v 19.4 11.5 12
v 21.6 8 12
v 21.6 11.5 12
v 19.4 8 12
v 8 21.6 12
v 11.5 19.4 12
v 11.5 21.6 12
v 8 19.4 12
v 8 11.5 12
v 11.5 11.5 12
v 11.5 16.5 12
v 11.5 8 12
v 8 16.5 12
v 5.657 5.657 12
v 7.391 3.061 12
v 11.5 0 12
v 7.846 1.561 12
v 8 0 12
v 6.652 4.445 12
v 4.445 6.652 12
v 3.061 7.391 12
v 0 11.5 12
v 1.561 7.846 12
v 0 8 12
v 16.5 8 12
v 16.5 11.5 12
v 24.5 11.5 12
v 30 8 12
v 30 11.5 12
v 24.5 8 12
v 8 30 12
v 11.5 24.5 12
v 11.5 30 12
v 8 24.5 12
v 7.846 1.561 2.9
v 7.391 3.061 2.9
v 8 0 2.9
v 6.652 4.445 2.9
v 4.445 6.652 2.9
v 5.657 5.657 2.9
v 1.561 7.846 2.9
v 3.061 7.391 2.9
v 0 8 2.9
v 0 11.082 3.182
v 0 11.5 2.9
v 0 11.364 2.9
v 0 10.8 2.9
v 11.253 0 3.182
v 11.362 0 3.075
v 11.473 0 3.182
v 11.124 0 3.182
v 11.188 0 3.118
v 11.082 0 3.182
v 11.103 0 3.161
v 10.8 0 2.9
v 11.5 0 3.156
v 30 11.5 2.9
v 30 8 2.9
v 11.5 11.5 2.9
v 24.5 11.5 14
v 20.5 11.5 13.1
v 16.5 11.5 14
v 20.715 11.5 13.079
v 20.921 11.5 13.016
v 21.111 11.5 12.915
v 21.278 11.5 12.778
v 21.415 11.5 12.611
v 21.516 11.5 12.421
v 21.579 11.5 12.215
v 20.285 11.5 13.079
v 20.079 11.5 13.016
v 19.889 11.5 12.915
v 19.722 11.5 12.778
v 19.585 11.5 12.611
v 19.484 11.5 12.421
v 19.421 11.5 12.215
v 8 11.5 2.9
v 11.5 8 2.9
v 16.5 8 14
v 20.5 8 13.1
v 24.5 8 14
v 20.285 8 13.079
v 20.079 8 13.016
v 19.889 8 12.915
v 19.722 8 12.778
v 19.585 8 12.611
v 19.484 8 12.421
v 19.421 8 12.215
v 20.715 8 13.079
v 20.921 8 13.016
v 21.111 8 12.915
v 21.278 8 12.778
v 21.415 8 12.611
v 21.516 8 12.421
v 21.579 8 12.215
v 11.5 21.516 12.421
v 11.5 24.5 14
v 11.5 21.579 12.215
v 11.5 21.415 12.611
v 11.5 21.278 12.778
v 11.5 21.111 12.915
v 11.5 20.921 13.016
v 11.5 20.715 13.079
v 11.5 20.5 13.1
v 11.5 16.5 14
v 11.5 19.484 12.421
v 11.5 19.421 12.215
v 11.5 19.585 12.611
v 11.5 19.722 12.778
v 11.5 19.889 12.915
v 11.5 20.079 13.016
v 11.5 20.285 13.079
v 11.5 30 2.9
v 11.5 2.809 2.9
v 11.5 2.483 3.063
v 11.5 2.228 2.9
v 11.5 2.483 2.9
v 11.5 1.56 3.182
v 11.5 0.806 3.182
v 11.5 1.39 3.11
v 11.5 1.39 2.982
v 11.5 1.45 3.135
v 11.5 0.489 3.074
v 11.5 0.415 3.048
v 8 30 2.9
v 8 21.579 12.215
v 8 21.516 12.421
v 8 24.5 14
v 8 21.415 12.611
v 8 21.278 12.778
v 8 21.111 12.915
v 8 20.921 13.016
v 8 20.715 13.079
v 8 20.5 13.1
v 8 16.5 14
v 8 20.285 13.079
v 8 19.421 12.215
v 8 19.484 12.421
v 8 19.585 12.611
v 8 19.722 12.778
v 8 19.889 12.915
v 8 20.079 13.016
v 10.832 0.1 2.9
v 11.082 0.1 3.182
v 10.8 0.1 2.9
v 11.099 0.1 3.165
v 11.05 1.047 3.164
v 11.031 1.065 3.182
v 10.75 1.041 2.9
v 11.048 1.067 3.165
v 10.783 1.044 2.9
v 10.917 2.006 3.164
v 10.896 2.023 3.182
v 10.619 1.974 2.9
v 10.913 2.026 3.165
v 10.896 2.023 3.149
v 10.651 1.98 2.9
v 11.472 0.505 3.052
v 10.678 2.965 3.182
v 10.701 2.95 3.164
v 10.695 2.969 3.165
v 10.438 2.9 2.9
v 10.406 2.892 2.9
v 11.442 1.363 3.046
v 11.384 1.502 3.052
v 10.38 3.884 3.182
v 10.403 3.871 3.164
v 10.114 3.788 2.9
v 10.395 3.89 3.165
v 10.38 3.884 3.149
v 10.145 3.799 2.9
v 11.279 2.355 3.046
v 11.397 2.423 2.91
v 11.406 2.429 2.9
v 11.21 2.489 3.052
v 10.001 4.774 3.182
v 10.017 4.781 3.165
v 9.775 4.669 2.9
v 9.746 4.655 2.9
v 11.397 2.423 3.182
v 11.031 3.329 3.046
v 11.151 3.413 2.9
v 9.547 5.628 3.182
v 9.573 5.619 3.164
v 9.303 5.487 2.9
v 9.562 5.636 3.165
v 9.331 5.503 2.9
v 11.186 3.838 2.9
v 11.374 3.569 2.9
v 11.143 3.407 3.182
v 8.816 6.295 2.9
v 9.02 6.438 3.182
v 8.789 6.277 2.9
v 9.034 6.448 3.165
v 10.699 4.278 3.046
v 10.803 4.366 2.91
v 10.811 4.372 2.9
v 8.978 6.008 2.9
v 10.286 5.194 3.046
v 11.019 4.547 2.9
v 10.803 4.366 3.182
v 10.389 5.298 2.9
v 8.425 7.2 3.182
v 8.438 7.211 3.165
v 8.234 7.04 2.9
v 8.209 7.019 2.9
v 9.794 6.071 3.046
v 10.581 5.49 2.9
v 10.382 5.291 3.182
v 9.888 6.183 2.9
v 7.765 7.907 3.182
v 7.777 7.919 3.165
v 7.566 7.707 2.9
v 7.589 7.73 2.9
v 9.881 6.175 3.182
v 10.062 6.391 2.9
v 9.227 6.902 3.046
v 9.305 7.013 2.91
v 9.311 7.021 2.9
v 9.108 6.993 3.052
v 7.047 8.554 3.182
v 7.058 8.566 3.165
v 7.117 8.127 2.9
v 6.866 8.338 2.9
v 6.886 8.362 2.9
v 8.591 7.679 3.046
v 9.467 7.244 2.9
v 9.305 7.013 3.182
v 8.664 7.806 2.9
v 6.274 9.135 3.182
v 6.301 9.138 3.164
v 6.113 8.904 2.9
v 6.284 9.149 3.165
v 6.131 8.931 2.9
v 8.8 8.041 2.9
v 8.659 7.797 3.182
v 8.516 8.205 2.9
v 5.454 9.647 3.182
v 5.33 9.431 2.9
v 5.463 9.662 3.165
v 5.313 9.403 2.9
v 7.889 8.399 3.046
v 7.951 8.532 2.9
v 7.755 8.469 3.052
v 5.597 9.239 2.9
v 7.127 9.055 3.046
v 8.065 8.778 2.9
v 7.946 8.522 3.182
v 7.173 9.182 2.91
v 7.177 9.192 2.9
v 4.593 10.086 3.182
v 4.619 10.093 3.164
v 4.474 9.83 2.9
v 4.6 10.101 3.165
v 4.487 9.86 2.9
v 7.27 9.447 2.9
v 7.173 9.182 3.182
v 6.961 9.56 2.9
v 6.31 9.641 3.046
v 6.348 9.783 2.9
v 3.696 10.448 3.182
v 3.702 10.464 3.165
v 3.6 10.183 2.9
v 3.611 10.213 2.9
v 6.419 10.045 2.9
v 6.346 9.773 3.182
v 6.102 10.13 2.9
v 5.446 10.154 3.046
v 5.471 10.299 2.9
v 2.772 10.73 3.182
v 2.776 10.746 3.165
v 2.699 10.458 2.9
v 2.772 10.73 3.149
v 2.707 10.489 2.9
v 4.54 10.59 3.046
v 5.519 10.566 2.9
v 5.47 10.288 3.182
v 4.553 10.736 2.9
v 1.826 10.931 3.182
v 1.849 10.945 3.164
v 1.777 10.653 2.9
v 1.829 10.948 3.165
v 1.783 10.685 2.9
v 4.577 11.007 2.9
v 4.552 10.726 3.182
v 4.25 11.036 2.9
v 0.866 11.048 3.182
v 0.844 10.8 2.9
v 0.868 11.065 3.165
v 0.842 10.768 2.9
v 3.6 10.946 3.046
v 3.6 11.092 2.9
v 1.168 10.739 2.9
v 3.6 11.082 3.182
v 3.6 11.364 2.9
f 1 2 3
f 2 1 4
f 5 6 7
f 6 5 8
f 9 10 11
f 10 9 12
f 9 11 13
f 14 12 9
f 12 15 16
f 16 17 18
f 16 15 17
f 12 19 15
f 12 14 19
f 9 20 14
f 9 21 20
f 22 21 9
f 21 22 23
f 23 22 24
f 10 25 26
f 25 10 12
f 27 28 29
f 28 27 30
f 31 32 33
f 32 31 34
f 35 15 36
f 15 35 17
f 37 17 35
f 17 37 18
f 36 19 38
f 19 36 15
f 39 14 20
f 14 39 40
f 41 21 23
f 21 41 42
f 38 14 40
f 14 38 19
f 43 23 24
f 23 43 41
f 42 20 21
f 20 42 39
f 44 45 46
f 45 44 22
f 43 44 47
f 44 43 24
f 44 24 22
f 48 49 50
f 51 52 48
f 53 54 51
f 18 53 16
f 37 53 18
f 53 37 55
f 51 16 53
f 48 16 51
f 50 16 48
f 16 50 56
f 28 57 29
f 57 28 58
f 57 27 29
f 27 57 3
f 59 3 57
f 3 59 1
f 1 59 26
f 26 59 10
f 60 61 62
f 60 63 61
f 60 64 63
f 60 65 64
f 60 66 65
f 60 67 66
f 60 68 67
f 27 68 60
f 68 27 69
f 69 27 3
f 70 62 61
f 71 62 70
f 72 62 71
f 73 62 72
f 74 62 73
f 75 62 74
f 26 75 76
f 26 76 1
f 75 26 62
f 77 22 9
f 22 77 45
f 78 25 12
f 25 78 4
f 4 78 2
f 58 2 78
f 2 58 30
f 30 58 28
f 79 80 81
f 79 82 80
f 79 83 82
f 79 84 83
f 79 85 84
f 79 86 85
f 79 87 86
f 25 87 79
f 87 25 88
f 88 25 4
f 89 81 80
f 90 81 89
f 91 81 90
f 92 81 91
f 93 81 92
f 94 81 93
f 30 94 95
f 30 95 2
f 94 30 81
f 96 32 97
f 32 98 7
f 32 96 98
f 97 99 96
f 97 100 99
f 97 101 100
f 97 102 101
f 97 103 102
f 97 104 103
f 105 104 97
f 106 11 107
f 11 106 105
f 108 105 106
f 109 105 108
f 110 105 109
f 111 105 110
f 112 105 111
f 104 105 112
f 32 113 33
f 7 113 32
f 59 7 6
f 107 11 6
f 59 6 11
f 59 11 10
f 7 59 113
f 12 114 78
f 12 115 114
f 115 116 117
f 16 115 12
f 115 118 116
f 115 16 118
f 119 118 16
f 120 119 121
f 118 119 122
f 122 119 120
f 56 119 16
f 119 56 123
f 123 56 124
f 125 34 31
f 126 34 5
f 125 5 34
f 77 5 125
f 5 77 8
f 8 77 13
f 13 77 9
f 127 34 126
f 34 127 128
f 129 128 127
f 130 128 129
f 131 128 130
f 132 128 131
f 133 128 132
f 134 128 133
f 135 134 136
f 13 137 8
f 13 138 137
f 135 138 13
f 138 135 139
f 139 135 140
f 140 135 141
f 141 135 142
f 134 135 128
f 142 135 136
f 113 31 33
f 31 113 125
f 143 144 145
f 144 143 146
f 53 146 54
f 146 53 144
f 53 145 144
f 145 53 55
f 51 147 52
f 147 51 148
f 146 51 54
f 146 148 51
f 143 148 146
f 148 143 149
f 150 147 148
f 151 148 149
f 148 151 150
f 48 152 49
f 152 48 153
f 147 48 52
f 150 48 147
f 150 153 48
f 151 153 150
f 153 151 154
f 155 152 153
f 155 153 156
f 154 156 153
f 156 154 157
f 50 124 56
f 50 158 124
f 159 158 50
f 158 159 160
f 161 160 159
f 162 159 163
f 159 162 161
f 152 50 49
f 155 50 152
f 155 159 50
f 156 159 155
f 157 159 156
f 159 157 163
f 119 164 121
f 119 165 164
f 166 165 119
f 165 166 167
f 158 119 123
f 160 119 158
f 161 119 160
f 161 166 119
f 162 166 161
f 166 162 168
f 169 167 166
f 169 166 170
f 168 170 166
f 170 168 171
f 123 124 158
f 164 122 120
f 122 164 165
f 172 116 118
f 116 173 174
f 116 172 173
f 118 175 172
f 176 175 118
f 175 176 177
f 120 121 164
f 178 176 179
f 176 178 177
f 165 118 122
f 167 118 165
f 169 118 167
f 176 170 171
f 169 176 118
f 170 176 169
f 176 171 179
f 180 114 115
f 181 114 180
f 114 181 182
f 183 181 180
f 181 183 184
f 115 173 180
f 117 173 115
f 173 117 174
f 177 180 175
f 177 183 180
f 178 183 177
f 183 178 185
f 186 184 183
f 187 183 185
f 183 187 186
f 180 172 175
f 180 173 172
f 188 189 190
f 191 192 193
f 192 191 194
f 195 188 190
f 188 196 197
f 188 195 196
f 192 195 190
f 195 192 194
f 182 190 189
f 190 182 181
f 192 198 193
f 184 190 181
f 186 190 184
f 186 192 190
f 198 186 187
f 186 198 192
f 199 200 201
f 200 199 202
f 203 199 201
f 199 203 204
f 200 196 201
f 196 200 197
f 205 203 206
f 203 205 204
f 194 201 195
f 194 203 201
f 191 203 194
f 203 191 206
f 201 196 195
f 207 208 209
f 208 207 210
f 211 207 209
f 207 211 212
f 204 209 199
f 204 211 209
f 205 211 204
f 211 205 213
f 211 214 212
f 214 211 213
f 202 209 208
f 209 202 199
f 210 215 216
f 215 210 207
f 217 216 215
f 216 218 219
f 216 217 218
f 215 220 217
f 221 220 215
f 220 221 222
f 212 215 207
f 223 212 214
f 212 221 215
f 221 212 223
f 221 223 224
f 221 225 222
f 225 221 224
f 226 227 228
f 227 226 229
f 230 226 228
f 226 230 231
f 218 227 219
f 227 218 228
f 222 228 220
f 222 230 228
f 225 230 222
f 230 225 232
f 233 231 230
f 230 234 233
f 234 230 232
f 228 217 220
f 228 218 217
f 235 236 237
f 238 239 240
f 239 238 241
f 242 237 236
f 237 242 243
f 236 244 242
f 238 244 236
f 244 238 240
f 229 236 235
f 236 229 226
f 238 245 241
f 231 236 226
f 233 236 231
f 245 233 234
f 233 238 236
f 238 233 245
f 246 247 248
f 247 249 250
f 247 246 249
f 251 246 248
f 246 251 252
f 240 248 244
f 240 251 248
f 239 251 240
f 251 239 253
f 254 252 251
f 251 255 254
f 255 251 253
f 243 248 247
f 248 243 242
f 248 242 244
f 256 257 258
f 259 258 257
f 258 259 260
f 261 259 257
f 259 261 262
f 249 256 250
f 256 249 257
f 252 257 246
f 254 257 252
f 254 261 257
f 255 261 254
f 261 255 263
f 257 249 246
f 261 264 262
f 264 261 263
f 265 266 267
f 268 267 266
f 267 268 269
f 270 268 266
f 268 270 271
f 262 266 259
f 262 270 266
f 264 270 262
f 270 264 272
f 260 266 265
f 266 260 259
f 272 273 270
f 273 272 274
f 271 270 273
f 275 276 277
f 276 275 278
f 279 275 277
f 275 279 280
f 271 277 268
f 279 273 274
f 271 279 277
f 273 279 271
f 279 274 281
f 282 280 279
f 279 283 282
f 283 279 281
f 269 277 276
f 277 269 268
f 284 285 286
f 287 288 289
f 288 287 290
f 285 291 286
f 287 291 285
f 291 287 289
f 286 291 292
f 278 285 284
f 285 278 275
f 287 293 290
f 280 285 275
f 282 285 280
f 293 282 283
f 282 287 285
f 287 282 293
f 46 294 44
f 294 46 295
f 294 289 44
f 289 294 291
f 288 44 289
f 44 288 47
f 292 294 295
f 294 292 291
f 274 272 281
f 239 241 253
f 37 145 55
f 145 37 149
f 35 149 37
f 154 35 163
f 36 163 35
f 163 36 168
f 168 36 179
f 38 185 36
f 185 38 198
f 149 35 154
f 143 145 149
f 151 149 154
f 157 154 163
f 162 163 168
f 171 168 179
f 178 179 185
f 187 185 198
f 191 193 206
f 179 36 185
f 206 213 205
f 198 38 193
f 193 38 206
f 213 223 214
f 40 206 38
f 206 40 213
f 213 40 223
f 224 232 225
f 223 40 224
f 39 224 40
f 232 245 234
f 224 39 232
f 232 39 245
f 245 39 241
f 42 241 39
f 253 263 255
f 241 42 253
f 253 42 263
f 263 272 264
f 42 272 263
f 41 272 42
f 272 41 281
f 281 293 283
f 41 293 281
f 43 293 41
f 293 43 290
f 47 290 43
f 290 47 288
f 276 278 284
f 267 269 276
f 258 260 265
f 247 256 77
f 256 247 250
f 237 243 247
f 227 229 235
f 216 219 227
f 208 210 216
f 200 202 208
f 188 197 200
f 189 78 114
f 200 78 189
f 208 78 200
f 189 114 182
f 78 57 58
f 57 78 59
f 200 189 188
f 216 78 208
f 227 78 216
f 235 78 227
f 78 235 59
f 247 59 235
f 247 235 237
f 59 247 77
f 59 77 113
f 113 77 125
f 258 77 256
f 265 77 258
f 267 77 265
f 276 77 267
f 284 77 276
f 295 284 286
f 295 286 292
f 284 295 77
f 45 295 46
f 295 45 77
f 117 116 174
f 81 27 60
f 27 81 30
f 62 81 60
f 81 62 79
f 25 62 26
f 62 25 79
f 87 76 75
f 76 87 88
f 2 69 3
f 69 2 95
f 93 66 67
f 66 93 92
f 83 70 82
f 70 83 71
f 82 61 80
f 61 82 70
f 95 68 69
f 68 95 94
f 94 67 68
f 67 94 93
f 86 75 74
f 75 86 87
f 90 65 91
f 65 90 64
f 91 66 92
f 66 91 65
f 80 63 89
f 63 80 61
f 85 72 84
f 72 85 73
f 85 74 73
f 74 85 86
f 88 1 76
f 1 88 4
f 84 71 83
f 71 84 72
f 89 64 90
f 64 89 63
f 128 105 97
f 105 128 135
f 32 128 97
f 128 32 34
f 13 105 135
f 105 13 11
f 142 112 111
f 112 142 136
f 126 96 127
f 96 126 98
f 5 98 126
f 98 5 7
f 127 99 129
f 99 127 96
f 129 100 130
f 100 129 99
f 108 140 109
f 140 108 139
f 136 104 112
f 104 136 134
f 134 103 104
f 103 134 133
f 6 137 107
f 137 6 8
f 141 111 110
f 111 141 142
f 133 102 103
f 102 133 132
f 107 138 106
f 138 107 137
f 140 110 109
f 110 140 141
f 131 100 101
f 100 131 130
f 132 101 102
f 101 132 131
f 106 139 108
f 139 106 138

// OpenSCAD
// ============================================================
//  MSE-6 — Corner Skid Guard  (print 4×)
//  Protects the 8mm shell overhang lips at each corner.
//  Snaps/glues onto the shell bottom edge corners.
//
//  Print in TPU 95A for best impact absorption,
//  or PETG if TPU not available.
//
//  Shell overhangs rover by 8mm each side.
//  Shell bottom edge at Z=10mm (3mm skirt below main body).
//
//  The guard wraps around the corner: 30mm each leg,
//  3mm thick, 12mm tall. Gentle 45° chamfer on bottom.
// ============================================================
$fn = 32;

// Guard dimensions
leg      = 30.0;   // length of each leg
guard_t  =  3.5;   // wall thickness
guard_h  = 12.0;   // height

// Inner radius matches shell corner radius (~8mm based on geometry)
inner_r  =  8.0;
outer_r  = inner_r + guard_t;

// Bottom chamfer
cham     =  3.0;

// Mounting: 2 small tabs with Ø2mm screw holes for M2 self-tapper
tab_l    =  8.0;
tab_w    =  4.0;
tab_t    =  2.0;
m2_d     =  2.2;

module skid_guard() {
    difference() {
        union() {
            // Corner arc
            difference() {
                cylinder(r = outer_r, h = guard_h);
                translate([0, 0, -0.1])
                    cylinder(r = inner_r, h = guard_h + 0.2);
                // Remove 3/4 leaving just the corner quadrant
                translate([-outer_r - 0.1, -outer_r - 0.1, -0.1])
                    cube([outer_r + 0.1, outer_r*2 + 0.2, guard_h + 0.2]);
                translate([-outer_r - 0.1, -outer_r - 0.1, -0.1])
                    cube([outer_r*2 + 0.2, outer_r + 0.1, guard_h + 0.2]);
            }
            // Left leg
            translate([0, inner_r, 0])
                cube([leg, guard_t, guard_h]);
            // Right leg
            translate([inner_r, 0, 0])
                cube([guard_t, leg, guard_h]);
        }

        // Bottom chamfer (all faces)
        translate([0, 0, -0.1])
            rotate([0, 0, 0])
                // Cut a chamfer bevel at bottom
                translate([-outer_r - 0.1, -outer_r - 0.1, 0])
                    cube([outer_r*2 + leg + 0.2, outer_r*2 + leg + 0.2, cham]);

        // Bevel the bottom edge properly
        for (angle = [0:5:90])
            rotate([0, 0, angle])
                translate([inner_r - 0.1, -guard_t - 0.1, 0])
                    rotate([0, 45, 0])
                        cube([cham*1.5, guard_t + 0.2, cham*1.5]);
    }

    // Mounting tabs (on inside face of legs)
    translate([leg*0.55, inner_r, guard_h - tab_t])
        difference() {
            cube([tab_l, guard_t, tab_t + 2]);
            translate([tab_l/2, -0.1, tab_t/2 + 1])
                rotate([-90, 0, 0])
                    cylinder(d = m2_d, h = guard_t + 0.2);
        }
    translate([inner_r, leg*0.55, guard_h - tab_t])
        difference() {
            cube([guard_t, tab_l, tab_t + 2]);
            translate([-0.1, tab_l/2, tab_t/2 + 1])
                rotate([90, 0, 90])
                    cylinder(d = m2_d, h = guard_t + 0.2);
        }
}

skid_guard();
